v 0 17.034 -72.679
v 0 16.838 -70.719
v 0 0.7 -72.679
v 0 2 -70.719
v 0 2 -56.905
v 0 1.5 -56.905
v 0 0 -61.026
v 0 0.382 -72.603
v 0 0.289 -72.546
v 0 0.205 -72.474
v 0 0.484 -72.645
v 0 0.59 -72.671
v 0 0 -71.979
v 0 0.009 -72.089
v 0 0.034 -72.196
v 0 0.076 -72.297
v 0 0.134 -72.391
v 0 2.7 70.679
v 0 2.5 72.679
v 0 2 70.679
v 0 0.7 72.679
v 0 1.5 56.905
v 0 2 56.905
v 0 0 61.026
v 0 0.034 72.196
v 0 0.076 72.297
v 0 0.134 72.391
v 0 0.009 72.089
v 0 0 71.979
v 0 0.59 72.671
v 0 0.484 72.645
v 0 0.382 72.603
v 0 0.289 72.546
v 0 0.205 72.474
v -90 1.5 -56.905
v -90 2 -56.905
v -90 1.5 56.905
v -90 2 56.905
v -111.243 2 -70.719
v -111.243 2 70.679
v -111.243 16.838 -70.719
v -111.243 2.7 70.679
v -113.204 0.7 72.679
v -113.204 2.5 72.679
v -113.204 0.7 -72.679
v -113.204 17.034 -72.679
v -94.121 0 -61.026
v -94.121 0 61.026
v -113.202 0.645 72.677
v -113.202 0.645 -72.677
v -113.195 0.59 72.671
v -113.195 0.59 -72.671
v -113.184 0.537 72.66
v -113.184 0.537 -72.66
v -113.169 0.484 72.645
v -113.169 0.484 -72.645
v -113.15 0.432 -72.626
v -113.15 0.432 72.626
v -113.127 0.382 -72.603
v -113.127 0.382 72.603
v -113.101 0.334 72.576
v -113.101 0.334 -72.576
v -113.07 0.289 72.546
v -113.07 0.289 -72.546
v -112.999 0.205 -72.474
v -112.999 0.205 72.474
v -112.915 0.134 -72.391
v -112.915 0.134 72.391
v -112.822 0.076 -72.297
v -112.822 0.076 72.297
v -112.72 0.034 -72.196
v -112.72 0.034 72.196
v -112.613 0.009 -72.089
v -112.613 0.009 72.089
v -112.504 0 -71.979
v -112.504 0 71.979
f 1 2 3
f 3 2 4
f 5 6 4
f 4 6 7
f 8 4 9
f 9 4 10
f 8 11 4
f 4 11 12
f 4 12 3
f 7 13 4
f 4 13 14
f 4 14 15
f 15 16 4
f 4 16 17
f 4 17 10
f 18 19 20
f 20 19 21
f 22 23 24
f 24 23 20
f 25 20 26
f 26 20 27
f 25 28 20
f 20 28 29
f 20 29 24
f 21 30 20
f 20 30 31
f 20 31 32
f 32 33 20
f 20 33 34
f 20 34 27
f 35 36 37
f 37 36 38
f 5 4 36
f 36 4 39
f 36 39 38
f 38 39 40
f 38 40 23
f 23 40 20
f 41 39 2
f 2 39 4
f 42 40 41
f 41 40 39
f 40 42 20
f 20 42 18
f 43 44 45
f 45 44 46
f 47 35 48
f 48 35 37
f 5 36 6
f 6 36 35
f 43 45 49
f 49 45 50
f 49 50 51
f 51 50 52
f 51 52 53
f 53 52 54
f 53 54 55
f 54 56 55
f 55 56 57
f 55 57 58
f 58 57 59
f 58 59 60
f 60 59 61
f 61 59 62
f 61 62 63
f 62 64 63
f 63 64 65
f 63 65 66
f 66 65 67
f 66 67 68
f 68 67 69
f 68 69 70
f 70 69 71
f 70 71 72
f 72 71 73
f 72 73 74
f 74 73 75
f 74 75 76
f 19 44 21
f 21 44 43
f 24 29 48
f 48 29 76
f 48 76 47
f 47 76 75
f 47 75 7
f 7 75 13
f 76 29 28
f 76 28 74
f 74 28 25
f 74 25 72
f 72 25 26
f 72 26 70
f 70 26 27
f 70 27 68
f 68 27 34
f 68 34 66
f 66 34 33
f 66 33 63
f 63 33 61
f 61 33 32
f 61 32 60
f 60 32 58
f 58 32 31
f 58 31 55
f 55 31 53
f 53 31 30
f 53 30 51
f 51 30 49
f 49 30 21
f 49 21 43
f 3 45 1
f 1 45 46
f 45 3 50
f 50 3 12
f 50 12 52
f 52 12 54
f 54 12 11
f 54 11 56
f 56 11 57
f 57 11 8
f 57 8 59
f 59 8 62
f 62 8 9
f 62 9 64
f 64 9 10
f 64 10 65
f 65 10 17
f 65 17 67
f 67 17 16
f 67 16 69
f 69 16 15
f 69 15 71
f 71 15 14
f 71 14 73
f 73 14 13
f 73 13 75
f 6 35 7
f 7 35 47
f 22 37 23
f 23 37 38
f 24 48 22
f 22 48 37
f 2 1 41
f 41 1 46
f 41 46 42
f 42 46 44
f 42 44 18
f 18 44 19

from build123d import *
from OCP.BRepFilletAPI import BRepFilletAPI_MakeChamfer

# Parameters (mm, degrees)
CROQUIS1_W                 = 220.407444928
CROQUIS1_H                 = 139.358729484
CROQUIS1_W_2               = 180
CROQUIS1_H_2               = 113.81
SALIENTE_EXTRUIR1_DEPTH    = 2
EXTRUIR_L_MINA3_DEPTH      = 16.5
EXTRUIR_L_MINA3_DEPTH_BACK = 2
CROQUIS2_W                 = 226.407444928
CROQUIS2_H                 = 145.358729484
CROQUIS2_W_2               = 220.407444928
CROQUIS2_H_2               = 139.358729484
CROQUIS6_W                 = 222.447038553
CROQUIS6_H                 = 141.398323109
CORTAR_EXTRUIR2_DEPTH      = 16.5
CORTAR_EXTRUIR3_REACH      = 240.505
CORTAR_EXTRUIR4_DEPTH      = 1.960406375
REDONDEO2_R                = 0.7
CHAFL_N1_SIZE              = 1.5
CHAFL_N1_SIZE2             = 4.121216129
REDONDEO3_R                = 0.7


with BuildPart() as part:
    # Croquis1 → Saliente-Extruir1 (new body)
    with BuildSketch(Plane(origin=(0, 0, 0), x_dir=(1, 0, 0), z_dir=(0, 1, 0))):
        Rectangle(CROQUIS1_W, CROQUIS1_H)
        Rectangle(CROQUIS1_W_2, CROQUIS1_H_2, mode=Mode.SUBTRACT)
    extrude(amount=SALIENTE_EXTRUIR1_DEPTH)

    # Croquis2 → Extruir-Lámina3 (add, two sides: drawn at the far end of the back side and taken through both)
    with BuildSketch(Plane(origin=(0, 2, 0), x_dir=(1, 0, 0), z_dir=(0, 1, 0)).offset(-EXTRUIR_L_MINA3_DEPTH_BACK)):
        Rectangle(CROQUIS2_W, CROQUIS2_H)
        Rectangle(CROQUIS2_W_2, CROQUIS2_H_2, mode=Mode.SUBTRACT)
    extrude(amount=EXTRUIR_L_MINA3_DEPTH + EXTRUIR_L_MINA3_DEPTH_BACK)

    # Croquis6 → Cortar-Extruir2 (cut)
    with BuildSketch(Plane(origin=(0, 18.5, 0), x_dir=(1, 0, 0), z_dir=(0, 1, 0))):
        with Locations((-0.019796812, 0.019796812)):
            Rectangle(CROQUIS6_W, CROQUIS6_H)
    extrude(amount=-CORTAR_EXTRUIR2_DEPTH, mode=Mode.SUBTRACT)

    # Cortar-Extruir3: up to this face of the body (flat: up to its plane)
    cortar_extruir3_end = Plane(part.part.faces().sort_by_distance((113.203722464, 9.25, 0))[0])
    # Croquis7 → Cortar-Extruir3 (cut, up to the picked face)
    with BuildSketch(Plane.ZY.offset(113.203722464), mode=Mode.PRIVATE) as cortar_extruir3_sk1:
        Polygon((-72.679364742, 18.5), (-72.679364742, 17.034353119), (72.679364742, 2.5), (72.679364742, 18.5), align=None)
    cortar_extruir3_tool1 = split(extrude(cortar_extruir3_sk1.sketch, amount=-CORTAR_EXTRUIR3_REACH, mode=Mode.PRIVATE), bisect_by=cortar_extruir3_end, keep=Keep.BOTH, mode=Mode.PRIVATE)
    add(cortar_extruir3_tool1.solids().sort_by(Axis((-113.203722, 13.12567, 20.160481), (1, 0, 0)))[0], mode=Mode.SUBTRACT)

    # Croquis8 → Cortar-Extruir4 (cut)
    with BuildSketch(Plane(origin=(0, 0, -72.679364742), x_dir=(-1, 0, 0), z_dir=(0, 0, -1))):
        with BuildLine():
            Line((-33.703722464, 17.034353119), (-74.703722464, 17.034353119))
            Line((-74.703722464, 17.034353119), (-74.703722464, 9.034353119))
            ThreePointArc((-74.703722464, 9.034353119), (-74.264382636, 7.973692947), (-73.203722464, 7.534353119))
            Line((-73.203722464, 7.534353119), (-35.203722464, 7.534353119))
            ThreePointArc((-35.203722464, 7.534353119), (-34.143062292, 7.973692947), (-33.703722464, 9.034353119))
            Line((-33.703722464, 9.034353119), (-33.703722464, 17.034353119))
        make_face()
    extrude(amount=-CORTAR_EXTRUIR4_DEPTH, mode=Mode.SUBTRACT)

    # Redondeo2
    redondeo2_edges = [part.edges().sort_by_distance(p)[0] for p in [
        (33.703722464, 12.936343049, -70.718958367),
        (34.143062292, 7.973692947, -70.718958367),
        (54.203722464, 7.534353119, -70.718958367),
        (74.264382636, 7.973692947, -70.718958367),
        (74.703722464, 12.936343049, -70.718958367),
        (74.703722464, 13.034353119, -72.679364742),
        (74.264382636, 7.973692947, -72.679364742),
        (54.203722464, 7.534353119, -72.679364742),
        (34.143062292, 7.973692947, -72.679364742),
        (33.703722464, 13.034353119, -72.679364742),
    ]]
    fillet(redondeo2_edges, radius=REDONDEO2_R)

    # Chaflán1: one chamfer whose edges measure the first distance from different faces: ONE call of the kernel's chamfer builder (chamfer() names one face for all edges)
    chafl_n1_edges_1 = [part.edges().sort_by_distance(p)[0] for p in [
        (90, 0, 0),
    ]]
    chafl_n1_side_1 = [part.faces().sort_by_distance(p)[0] for p in [
        (90, 1, 0),
    ]]
    chafl_n1_edges_2 = [part.edges().sort_by_distance(p)[0] for p in [
        (0, 0, -56.905),
    ]]
    chafl_n1_side_2 = [part.faces().sort_by_distance(p)[0] for p in [
        (0, 1, -56.905),
    ]]
    chafl_n1_edges_3 = [part.edges().sort_by_distance(p)[0] for p in [
        (-90, 0, 0),
    ]]
    chafl_n1_side_3 = [part.faces().sort_by_distance(p)[0] for p in [
        (-90, 1, 0),
    ]]
    chafl_n1_edges_4 = [part.edges().sort_by_distance(p)[0] for p in [
        (0, 0, 56.905),
    ]]
    chafl_n1_side_4 = [part.faces().sort_by_distance(p)[0] for p in [
        (0, 1, 56.905),
    ]]
    chafl_n1 = BRepFilletAPI_MakeChamfer(part.part.solid().wrapped)
    for e in chafl_n1_edges_1:
        chafl_n1.Add(CHAFL_N1_SIZE, CHAFL_N1_SIZE2, e.wrapped, chafl_n1_side_1[0].wrapped)  # the first distance lies on this face
    for e in chafl_n1_edges_2:
        chafl_n1.Add(CHAFL_N1_SIZE, CHAFL_N1_SIZE2, e.wrapped, chafl_n1_side_2[0].wrapped)  # the first distance lies on this face
    for e in chafl_n1_edges_3:
        chafl_n1.Add(CHAFL_N1_SIZE, CHAFL_N1_SIZE2, e.wrapped, chafl_n1_side_3[0].wrapped)  # the first distance lies on this face
    for e in chafl_n1_edges_4:
        chafl_n1.Add(CHAFL_N1_SIZE, CHAFL_N1_SIZE2, e.wrapped, chafl_n1_side_4[0].wrapped)  # the first distance lies on this face
    add(Compound.cast(chafl_n1.Shape()), mode=Mode.REPLACE)

    # Redondeo3
    redondeo3_edges = [part.edges().sort_by_distance(p)[0] for p in [
        (-113.203722464, 0, 0),
        (0, 0, -72.679364742),
        (113.203722464, 0, 0),
        (0, 0, 72.679364742),
    ]]
    fillet(redondeo3_edges, radius=REDONDEO3_R)

    # Partir1
    split(bisect_by=Plane(origin=(0, 0, 0), x_dir=(0, 0, 1), z_dir=(1, 0, 0)), keep=Keep.BOTTOM)


solid = part.part
